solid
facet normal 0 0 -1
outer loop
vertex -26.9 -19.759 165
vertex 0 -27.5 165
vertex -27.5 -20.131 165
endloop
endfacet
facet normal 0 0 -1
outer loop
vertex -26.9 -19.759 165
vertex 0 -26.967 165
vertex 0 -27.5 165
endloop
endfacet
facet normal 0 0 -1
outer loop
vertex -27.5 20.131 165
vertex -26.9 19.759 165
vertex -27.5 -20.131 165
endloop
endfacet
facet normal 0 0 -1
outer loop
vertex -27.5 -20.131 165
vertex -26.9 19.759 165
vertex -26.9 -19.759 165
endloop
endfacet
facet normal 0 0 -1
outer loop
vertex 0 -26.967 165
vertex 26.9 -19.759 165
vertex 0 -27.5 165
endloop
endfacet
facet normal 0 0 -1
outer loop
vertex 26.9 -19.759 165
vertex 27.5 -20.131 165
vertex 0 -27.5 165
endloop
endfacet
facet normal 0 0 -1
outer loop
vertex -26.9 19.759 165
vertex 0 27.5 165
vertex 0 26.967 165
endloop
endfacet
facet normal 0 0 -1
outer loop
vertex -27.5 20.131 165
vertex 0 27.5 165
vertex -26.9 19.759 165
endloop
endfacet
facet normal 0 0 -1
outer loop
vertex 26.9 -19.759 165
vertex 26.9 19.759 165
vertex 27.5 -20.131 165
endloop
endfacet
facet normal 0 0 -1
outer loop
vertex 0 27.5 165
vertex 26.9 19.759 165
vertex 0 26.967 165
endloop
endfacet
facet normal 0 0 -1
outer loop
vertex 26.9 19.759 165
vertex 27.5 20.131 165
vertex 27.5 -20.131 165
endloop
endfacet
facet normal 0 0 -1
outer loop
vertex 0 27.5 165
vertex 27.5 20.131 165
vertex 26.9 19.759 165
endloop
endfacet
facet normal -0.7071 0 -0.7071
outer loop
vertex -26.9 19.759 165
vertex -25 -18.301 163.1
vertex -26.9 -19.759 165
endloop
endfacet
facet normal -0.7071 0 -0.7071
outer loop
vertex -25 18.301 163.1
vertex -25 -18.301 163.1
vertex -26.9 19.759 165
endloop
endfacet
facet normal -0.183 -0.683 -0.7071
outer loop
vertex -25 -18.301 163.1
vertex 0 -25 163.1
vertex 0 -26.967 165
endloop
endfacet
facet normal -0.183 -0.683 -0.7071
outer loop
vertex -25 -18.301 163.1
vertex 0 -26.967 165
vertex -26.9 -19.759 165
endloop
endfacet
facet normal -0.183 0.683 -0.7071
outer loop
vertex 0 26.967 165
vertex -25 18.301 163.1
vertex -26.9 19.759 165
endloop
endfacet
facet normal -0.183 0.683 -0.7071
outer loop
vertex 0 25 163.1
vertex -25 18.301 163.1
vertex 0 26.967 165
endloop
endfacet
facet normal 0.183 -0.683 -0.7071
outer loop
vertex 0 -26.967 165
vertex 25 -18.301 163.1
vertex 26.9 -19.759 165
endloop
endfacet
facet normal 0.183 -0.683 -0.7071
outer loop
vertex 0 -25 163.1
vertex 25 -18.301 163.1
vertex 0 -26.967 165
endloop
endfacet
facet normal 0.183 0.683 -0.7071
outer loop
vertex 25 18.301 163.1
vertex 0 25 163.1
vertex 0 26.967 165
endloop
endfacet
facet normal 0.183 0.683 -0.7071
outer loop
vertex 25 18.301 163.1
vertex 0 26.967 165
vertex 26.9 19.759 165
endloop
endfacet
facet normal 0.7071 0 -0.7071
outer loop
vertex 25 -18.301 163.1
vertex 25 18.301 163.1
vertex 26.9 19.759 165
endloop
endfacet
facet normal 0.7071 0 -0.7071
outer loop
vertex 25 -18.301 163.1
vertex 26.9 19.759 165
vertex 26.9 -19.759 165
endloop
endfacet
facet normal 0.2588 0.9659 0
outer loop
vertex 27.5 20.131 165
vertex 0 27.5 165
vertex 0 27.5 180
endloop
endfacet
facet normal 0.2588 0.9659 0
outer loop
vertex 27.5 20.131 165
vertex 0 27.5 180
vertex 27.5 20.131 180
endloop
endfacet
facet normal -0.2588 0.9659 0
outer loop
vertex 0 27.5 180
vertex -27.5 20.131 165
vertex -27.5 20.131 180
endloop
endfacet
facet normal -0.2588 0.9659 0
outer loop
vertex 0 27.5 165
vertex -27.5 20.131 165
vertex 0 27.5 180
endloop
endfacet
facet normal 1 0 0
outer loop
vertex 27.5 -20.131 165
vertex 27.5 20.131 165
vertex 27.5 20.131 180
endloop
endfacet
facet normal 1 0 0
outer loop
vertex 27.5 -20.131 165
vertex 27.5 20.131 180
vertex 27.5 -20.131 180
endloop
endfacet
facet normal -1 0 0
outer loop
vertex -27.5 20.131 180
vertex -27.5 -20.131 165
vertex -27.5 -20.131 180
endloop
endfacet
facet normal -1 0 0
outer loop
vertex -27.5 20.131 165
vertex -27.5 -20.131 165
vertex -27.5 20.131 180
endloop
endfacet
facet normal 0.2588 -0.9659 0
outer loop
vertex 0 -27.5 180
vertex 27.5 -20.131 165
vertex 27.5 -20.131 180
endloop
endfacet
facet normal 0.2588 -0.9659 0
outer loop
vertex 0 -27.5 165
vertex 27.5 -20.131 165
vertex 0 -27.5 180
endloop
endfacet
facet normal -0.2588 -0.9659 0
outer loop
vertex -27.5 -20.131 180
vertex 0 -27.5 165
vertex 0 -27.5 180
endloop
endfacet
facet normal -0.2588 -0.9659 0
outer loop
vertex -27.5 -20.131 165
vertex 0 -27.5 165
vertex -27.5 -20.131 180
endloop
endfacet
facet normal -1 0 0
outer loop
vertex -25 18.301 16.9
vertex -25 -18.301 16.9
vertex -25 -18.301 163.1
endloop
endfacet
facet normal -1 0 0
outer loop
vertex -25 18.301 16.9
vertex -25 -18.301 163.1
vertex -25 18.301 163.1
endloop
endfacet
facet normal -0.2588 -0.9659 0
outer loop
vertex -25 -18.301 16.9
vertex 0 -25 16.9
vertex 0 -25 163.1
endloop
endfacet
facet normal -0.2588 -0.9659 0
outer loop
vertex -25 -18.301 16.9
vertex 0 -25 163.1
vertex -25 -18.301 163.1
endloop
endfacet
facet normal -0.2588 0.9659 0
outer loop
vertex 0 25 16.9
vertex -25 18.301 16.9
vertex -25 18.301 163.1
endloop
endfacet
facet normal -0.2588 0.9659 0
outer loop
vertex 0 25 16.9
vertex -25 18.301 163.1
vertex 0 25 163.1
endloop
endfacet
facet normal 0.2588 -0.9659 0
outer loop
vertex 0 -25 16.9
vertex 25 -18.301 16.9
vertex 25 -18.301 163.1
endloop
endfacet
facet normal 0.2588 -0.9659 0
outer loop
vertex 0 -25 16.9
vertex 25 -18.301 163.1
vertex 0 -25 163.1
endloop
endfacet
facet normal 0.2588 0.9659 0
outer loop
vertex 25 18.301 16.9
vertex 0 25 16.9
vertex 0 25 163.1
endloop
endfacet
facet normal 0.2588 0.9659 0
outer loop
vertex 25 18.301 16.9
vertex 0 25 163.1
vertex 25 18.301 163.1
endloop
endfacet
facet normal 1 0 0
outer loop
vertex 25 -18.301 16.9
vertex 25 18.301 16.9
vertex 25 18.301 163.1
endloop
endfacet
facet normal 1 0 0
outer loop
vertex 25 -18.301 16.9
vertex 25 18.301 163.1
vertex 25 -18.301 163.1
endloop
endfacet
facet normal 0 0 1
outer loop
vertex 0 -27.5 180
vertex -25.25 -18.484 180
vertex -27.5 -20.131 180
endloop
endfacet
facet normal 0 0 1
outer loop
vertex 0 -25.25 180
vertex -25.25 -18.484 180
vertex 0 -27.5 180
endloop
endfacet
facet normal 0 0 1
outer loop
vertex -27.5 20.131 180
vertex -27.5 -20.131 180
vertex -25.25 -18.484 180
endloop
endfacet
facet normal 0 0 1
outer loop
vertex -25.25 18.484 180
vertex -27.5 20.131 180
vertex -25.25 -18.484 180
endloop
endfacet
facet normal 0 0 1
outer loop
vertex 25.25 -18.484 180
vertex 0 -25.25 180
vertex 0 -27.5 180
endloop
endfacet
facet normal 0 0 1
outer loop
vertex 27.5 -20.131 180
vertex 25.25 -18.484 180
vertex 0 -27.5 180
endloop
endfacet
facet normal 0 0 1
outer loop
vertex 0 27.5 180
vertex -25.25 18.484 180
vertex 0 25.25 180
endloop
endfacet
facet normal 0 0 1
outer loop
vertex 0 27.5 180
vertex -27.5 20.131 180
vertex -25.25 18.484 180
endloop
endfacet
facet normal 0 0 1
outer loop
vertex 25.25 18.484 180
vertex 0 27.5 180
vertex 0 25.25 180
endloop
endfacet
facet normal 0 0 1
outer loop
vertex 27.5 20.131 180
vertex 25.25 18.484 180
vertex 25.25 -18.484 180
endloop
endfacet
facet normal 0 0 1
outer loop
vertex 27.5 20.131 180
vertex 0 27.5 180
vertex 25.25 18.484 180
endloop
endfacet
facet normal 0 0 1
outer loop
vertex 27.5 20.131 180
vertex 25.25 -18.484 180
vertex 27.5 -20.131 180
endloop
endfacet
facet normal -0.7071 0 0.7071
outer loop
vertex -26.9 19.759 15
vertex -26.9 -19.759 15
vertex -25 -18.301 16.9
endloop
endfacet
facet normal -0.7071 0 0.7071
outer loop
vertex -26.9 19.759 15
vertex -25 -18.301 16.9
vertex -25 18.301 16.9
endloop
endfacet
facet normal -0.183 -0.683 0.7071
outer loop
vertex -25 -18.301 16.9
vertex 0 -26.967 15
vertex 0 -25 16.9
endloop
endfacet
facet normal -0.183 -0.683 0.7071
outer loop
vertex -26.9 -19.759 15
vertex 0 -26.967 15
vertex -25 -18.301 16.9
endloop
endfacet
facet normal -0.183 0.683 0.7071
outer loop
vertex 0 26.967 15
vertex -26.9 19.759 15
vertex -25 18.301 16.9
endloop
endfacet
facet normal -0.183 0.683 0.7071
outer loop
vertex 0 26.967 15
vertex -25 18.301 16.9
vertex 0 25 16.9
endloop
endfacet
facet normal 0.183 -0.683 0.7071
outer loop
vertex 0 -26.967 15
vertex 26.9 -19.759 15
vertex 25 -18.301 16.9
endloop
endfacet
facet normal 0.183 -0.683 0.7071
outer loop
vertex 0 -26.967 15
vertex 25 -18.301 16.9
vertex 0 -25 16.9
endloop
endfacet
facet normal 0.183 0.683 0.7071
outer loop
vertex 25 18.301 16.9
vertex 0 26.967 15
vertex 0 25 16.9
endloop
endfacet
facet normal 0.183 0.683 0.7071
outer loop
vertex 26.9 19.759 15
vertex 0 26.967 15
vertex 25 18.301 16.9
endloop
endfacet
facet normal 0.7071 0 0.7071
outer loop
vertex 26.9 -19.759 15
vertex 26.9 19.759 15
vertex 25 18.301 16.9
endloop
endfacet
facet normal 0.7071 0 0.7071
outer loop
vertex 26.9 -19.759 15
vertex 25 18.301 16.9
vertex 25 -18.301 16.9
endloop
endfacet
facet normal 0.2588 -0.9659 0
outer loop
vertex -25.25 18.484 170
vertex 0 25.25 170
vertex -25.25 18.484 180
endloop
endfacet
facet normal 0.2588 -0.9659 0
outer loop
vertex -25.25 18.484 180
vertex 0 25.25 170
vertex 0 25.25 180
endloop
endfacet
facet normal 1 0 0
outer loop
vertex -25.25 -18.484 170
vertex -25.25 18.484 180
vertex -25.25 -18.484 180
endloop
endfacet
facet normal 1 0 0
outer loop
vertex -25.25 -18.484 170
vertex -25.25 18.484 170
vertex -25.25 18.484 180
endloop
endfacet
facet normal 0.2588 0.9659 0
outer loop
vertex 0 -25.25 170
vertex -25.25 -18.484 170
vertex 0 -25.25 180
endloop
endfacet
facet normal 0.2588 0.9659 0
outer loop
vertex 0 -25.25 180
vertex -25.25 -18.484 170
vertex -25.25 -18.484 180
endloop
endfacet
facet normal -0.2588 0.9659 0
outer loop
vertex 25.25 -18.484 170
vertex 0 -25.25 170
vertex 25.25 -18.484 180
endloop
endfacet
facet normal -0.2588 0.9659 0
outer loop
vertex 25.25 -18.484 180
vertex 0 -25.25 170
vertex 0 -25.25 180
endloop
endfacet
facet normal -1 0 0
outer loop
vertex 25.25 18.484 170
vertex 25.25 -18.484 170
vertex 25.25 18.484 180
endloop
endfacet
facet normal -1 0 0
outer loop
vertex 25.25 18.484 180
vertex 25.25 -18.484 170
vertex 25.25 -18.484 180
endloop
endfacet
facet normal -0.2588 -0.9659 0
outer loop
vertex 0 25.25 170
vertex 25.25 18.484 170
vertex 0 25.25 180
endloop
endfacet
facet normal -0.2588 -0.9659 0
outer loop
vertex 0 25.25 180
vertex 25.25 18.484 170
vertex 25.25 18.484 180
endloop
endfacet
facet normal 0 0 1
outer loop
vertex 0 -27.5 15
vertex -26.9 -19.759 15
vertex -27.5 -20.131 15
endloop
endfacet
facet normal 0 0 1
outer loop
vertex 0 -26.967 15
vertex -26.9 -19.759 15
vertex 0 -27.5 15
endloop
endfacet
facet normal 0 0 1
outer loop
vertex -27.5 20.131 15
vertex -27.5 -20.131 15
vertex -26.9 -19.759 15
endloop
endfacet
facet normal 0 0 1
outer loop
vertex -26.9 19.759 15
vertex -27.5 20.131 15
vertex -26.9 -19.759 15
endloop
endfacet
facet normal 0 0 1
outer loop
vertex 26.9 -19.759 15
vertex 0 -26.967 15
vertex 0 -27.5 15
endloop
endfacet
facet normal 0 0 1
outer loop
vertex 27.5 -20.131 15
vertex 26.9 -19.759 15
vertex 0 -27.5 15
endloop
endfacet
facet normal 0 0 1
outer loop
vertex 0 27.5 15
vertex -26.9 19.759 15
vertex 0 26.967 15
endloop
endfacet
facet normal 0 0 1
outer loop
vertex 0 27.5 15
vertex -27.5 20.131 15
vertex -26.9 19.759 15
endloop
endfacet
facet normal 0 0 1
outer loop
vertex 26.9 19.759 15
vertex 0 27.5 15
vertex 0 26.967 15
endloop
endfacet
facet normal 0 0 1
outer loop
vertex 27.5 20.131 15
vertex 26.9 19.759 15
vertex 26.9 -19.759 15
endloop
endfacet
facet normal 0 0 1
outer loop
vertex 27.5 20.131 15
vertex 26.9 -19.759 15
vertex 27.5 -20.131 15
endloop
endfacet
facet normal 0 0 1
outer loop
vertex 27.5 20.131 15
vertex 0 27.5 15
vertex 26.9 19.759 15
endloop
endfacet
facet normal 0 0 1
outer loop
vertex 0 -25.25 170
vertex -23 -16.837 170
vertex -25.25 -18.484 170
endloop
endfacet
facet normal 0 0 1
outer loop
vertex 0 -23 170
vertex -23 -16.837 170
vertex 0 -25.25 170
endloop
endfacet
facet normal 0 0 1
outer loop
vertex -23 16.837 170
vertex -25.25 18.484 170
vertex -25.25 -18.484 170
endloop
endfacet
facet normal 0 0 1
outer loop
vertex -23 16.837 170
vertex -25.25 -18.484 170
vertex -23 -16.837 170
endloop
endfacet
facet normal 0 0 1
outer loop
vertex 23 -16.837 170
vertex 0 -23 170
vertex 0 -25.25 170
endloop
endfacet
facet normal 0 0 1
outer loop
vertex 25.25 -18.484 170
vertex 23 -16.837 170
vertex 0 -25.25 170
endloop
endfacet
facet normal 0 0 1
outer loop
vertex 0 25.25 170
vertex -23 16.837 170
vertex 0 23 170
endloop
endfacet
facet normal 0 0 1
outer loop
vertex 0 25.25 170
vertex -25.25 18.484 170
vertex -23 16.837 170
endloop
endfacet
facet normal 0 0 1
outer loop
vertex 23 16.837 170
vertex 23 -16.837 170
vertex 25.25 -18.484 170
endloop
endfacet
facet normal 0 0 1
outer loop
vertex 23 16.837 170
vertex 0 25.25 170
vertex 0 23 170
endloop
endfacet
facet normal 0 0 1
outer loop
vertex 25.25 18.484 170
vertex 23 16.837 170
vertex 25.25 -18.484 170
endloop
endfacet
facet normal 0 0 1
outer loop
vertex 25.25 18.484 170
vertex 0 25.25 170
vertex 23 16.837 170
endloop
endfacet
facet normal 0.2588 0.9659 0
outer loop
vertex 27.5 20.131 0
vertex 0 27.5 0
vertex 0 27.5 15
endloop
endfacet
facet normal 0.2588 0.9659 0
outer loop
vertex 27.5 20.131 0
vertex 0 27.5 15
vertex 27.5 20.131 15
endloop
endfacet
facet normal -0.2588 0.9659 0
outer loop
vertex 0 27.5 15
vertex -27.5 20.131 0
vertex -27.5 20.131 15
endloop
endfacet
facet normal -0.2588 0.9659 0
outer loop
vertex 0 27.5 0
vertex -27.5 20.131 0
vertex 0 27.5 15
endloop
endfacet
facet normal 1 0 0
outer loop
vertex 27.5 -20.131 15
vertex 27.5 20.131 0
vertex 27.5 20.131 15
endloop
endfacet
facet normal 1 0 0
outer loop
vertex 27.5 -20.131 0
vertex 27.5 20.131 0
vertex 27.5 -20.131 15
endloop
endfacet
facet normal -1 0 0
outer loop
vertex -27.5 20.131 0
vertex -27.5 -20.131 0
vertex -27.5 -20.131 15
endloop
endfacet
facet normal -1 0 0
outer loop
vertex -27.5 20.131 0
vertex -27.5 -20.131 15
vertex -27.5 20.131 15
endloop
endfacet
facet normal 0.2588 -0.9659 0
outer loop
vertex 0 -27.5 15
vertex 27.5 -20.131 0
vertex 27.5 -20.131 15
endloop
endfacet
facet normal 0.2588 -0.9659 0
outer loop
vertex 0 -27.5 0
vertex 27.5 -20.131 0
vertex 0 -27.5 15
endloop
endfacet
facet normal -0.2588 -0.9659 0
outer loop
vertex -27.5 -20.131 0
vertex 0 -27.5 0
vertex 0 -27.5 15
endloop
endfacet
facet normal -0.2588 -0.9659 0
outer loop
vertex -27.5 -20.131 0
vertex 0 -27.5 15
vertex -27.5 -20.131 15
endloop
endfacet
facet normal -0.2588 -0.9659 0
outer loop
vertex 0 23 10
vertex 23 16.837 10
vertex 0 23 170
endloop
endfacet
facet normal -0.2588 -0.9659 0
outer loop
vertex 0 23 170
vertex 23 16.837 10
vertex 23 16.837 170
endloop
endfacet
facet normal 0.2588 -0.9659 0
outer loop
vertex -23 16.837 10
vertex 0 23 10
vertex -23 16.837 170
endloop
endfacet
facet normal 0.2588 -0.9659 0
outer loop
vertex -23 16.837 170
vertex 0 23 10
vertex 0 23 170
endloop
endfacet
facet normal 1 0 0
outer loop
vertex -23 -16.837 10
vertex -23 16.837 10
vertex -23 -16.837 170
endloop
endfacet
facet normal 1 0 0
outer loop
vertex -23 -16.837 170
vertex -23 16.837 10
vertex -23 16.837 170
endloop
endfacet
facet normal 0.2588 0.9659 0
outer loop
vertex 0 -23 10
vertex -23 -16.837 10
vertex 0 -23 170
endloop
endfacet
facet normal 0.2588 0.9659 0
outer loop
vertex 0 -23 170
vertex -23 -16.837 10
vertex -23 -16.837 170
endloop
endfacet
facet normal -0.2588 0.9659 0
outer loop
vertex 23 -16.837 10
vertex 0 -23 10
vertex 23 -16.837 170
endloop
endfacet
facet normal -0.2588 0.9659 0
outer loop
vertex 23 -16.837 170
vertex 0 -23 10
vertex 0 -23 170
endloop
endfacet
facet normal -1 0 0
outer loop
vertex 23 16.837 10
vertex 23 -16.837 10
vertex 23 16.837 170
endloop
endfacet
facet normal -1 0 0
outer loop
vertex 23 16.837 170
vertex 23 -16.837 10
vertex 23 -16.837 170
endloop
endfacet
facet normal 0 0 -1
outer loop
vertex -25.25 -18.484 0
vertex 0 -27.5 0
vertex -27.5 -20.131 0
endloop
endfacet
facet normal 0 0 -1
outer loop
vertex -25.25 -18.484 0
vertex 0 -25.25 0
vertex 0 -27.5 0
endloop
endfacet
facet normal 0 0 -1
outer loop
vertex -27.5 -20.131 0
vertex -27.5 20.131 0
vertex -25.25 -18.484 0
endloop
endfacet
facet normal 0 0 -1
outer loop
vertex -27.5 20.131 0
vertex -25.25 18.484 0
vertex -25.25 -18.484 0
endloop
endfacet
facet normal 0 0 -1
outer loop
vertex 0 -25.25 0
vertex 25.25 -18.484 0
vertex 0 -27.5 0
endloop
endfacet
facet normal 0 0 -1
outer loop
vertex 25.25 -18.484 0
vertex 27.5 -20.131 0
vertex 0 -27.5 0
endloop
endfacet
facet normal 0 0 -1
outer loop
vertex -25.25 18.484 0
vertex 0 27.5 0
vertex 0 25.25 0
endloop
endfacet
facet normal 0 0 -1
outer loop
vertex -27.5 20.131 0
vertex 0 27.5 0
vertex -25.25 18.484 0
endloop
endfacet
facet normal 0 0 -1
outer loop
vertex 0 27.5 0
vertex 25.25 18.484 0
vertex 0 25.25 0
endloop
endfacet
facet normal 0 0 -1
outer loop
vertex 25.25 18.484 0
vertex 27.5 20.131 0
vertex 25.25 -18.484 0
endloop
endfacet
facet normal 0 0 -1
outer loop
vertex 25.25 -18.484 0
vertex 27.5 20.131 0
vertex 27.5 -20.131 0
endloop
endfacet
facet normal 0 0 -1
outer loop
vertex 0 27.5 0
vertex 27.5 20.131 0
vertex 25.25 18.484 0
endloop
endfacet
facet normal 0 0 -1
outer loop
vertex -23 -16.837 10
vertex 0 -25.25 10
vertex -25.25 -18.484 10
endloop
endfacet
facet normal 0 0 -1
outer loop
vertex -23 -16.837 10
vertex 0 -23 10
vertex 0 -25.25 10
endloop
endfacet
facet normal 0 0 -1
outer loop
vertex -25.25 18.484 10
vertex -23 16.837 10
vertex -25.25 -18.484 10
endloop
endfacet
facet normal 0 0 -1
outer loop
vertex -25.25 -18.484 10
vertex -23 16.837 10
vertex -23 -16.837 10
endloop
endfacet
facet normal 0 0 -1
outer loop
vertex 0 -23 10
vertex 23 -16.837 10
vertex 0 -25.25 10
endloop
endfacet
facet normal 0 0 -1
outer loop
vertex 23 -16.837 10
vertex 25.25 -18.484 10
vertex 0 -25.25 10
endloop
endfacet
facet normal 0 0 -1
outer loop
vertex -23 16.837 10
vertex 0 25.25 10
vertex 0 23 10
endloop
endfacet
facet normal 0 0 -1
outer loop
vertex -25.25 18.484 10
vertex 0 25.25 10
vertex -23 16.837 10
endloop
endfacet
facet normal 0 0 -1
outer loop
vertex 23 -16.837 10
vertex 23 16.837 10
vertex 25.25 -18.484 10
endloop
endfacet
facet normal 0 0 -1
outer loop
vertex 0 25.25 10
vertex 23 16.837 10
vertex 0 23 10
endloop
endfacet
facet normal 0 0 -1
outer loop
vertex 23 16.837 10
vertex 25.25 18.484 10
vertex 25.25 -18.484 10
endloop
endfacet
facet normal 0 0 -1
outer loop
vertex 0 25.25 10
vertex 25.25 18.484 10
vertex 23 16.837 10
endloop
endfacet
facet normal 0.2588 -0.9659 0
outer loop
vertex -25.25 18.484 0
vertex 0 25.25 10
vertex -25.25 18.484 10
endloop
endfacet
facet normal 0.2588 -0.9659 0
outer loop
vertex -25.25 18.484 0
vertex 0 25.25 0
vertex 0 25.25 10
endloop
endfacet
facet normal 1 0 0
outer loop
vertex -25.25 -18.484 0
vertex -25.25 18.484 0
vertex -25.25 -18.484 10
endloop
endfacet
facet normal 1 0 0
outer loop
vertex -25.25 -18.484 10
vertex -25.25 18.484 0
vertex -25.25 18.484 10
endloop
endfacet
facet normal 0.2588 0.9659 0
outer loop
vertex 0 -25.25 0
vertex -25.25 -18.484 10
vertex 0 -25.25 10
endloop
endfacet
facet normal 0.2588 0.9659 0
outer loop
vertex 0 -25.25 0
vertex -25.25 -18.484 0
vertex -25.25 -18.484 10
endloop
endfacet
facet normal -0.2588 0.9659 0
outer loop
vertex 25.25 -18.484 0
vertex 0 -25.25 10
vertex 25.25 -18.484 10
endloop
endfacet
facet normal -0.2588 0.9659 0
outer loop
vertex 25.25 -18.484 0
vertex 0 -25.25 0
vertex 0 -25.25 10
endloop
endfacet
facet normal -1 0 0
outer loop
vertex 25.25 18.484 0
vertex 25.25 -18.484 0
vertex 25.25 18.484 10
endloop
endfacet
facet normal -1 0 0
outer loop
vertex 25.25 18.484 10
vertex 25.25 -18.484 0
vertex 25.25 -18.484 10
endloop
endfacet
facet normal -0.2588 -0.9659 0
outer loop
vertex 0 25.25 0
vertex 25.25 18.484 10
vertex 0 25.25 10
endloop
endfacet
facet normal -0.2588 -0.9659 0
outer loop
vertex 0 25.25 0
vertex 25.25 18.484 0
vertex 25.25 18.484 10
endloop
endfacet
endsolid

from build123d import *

# Parameters (mm, degrees)
PAD005_DEPTH = 180
PAD004_DEPTH = 10
PAD002_DEPTH = 15
PAD003_DEPTH = 10
PAD001_DEPTH = 15
PAD_DEPTH    = 150
CHAMFER_SIZE = 1.9


with BuildPart() as body005:
    # Sketch005 → Pad005 (new body)
    with BuildSketch(Plane.XY):
        Polygon((0, 23), (23, 16.837169), (23, -16.837169), (0, -23), (-23, -16.837169), (-23, 16.837169), align=None)
    extrude(amount=PAD005_DEPTH)


with BuildPart() as body004:
    # Sketch004 → Pad004 (new body)
    with BuildSketch(Plane.XY):
        Polygon((0, 25.25), (25.25, 18.484283), (25.25, -18.484283), (0, -25.25), (-25.25, -18.484283), (-25.25, 18.484283), align=None)
    extrude(amount=PAD004_DEPTH)


with BuildPart() as body004_1:
    # Body004 placement: moved
    add(body004.part.moved(Location((0, 0, 5))))


with BuildPart() as cut001:
    # Sketch002 → Pad002 (new body)
    with BuildSketch(Plane.XY):
        Polygon((0, 27.5), (27.5, 20.131397), (27.5, -20.131397), (0, -27.5), (-27.5, -20.131397), (-27.5, 20.131397), align=None)
    extrude(amount=PAD002_DEPTH)

    # Cut001: cut Body004
    add(body004_1.part, mode=Mode.SUBTRACT)


with BuildPart() as cut001_1:
    # Cut001 placement: moved
    add(cut001.part.moved(Location((0, 0, 165))))


with BuildPart() as body003:
    # Sketch003 → Pad003 (new body)
    with BuildSketch(Plane.XY):
        Polygon((0, 25.25), (25.25, 18.484283), (25.25, -18.484283), (0, -25.25), (-25.25, -18.484283), (-25.25, 18.484283), align=None)
    extrude(amount=PAD003_DEPTH)


with BuildPart() as cut:
    # Sketch001 → Pad001 (new body)
    with BuildSketch(Plane.XY):
        Polygon((0, 27.5), (27.5, 20.131397), (27.5, -20.131397), (0, -27.5), (-27.5, -20.131397), (-27.5, 20.131397), align=None)
    extrude(amount=PAD001_DEPTH)

    # Cut: cut Body003
    add(body003.part, mode=Mode.SUBTRACT)


with BuildPart() as chamfer_body:
    # Sketch → Pad (new body)
    with BuildSketch(Plane.XY):
        Polygon((0, 25), (25, 18.30127), (25, -18.30127), (0, -25), (-25, -18.30127), (-25, 18.30127), align=None)
    extrude(amount=PAD_DEPTH)


with BuildPart() as chamfer_body_1:
    # Body placement: moved
    add(chamfer_body.part.moved(Location((0, 0, 15))))

    # Fusion: union Cut
    add(cut.part)

    # Fusion001: union Cut001
    add(cut001_1.part)

    # Cut002: cut Body005
    add(body005.part, mode=Mode.SUBTRACT)

    # Chamfer
    chamfer_edges = [chamfer_body_1.edges().sort_by_distance(p)[0] for p in [
        (-25, 0, 165),
        (-12.5, -21.650635, 165),
        (12.5, -21.650635, 165),
        (25, 0, 165),
        (12.5, 21.650635, 165),
        (-12.5, 21.650635, 165),
        (-25, 0, 15),
        (-12.5, -21.650635, 15),
        (12.5, -21.650635, 15),
        (25, 0, 15),
        (12.5, 21.650635, 15),
        (-12.5, 21.650635, 15),
    ]]
    chamfer(chamfer_edges, length=CHAMFER_SIZE)


solid = chamfer_body_1.part
